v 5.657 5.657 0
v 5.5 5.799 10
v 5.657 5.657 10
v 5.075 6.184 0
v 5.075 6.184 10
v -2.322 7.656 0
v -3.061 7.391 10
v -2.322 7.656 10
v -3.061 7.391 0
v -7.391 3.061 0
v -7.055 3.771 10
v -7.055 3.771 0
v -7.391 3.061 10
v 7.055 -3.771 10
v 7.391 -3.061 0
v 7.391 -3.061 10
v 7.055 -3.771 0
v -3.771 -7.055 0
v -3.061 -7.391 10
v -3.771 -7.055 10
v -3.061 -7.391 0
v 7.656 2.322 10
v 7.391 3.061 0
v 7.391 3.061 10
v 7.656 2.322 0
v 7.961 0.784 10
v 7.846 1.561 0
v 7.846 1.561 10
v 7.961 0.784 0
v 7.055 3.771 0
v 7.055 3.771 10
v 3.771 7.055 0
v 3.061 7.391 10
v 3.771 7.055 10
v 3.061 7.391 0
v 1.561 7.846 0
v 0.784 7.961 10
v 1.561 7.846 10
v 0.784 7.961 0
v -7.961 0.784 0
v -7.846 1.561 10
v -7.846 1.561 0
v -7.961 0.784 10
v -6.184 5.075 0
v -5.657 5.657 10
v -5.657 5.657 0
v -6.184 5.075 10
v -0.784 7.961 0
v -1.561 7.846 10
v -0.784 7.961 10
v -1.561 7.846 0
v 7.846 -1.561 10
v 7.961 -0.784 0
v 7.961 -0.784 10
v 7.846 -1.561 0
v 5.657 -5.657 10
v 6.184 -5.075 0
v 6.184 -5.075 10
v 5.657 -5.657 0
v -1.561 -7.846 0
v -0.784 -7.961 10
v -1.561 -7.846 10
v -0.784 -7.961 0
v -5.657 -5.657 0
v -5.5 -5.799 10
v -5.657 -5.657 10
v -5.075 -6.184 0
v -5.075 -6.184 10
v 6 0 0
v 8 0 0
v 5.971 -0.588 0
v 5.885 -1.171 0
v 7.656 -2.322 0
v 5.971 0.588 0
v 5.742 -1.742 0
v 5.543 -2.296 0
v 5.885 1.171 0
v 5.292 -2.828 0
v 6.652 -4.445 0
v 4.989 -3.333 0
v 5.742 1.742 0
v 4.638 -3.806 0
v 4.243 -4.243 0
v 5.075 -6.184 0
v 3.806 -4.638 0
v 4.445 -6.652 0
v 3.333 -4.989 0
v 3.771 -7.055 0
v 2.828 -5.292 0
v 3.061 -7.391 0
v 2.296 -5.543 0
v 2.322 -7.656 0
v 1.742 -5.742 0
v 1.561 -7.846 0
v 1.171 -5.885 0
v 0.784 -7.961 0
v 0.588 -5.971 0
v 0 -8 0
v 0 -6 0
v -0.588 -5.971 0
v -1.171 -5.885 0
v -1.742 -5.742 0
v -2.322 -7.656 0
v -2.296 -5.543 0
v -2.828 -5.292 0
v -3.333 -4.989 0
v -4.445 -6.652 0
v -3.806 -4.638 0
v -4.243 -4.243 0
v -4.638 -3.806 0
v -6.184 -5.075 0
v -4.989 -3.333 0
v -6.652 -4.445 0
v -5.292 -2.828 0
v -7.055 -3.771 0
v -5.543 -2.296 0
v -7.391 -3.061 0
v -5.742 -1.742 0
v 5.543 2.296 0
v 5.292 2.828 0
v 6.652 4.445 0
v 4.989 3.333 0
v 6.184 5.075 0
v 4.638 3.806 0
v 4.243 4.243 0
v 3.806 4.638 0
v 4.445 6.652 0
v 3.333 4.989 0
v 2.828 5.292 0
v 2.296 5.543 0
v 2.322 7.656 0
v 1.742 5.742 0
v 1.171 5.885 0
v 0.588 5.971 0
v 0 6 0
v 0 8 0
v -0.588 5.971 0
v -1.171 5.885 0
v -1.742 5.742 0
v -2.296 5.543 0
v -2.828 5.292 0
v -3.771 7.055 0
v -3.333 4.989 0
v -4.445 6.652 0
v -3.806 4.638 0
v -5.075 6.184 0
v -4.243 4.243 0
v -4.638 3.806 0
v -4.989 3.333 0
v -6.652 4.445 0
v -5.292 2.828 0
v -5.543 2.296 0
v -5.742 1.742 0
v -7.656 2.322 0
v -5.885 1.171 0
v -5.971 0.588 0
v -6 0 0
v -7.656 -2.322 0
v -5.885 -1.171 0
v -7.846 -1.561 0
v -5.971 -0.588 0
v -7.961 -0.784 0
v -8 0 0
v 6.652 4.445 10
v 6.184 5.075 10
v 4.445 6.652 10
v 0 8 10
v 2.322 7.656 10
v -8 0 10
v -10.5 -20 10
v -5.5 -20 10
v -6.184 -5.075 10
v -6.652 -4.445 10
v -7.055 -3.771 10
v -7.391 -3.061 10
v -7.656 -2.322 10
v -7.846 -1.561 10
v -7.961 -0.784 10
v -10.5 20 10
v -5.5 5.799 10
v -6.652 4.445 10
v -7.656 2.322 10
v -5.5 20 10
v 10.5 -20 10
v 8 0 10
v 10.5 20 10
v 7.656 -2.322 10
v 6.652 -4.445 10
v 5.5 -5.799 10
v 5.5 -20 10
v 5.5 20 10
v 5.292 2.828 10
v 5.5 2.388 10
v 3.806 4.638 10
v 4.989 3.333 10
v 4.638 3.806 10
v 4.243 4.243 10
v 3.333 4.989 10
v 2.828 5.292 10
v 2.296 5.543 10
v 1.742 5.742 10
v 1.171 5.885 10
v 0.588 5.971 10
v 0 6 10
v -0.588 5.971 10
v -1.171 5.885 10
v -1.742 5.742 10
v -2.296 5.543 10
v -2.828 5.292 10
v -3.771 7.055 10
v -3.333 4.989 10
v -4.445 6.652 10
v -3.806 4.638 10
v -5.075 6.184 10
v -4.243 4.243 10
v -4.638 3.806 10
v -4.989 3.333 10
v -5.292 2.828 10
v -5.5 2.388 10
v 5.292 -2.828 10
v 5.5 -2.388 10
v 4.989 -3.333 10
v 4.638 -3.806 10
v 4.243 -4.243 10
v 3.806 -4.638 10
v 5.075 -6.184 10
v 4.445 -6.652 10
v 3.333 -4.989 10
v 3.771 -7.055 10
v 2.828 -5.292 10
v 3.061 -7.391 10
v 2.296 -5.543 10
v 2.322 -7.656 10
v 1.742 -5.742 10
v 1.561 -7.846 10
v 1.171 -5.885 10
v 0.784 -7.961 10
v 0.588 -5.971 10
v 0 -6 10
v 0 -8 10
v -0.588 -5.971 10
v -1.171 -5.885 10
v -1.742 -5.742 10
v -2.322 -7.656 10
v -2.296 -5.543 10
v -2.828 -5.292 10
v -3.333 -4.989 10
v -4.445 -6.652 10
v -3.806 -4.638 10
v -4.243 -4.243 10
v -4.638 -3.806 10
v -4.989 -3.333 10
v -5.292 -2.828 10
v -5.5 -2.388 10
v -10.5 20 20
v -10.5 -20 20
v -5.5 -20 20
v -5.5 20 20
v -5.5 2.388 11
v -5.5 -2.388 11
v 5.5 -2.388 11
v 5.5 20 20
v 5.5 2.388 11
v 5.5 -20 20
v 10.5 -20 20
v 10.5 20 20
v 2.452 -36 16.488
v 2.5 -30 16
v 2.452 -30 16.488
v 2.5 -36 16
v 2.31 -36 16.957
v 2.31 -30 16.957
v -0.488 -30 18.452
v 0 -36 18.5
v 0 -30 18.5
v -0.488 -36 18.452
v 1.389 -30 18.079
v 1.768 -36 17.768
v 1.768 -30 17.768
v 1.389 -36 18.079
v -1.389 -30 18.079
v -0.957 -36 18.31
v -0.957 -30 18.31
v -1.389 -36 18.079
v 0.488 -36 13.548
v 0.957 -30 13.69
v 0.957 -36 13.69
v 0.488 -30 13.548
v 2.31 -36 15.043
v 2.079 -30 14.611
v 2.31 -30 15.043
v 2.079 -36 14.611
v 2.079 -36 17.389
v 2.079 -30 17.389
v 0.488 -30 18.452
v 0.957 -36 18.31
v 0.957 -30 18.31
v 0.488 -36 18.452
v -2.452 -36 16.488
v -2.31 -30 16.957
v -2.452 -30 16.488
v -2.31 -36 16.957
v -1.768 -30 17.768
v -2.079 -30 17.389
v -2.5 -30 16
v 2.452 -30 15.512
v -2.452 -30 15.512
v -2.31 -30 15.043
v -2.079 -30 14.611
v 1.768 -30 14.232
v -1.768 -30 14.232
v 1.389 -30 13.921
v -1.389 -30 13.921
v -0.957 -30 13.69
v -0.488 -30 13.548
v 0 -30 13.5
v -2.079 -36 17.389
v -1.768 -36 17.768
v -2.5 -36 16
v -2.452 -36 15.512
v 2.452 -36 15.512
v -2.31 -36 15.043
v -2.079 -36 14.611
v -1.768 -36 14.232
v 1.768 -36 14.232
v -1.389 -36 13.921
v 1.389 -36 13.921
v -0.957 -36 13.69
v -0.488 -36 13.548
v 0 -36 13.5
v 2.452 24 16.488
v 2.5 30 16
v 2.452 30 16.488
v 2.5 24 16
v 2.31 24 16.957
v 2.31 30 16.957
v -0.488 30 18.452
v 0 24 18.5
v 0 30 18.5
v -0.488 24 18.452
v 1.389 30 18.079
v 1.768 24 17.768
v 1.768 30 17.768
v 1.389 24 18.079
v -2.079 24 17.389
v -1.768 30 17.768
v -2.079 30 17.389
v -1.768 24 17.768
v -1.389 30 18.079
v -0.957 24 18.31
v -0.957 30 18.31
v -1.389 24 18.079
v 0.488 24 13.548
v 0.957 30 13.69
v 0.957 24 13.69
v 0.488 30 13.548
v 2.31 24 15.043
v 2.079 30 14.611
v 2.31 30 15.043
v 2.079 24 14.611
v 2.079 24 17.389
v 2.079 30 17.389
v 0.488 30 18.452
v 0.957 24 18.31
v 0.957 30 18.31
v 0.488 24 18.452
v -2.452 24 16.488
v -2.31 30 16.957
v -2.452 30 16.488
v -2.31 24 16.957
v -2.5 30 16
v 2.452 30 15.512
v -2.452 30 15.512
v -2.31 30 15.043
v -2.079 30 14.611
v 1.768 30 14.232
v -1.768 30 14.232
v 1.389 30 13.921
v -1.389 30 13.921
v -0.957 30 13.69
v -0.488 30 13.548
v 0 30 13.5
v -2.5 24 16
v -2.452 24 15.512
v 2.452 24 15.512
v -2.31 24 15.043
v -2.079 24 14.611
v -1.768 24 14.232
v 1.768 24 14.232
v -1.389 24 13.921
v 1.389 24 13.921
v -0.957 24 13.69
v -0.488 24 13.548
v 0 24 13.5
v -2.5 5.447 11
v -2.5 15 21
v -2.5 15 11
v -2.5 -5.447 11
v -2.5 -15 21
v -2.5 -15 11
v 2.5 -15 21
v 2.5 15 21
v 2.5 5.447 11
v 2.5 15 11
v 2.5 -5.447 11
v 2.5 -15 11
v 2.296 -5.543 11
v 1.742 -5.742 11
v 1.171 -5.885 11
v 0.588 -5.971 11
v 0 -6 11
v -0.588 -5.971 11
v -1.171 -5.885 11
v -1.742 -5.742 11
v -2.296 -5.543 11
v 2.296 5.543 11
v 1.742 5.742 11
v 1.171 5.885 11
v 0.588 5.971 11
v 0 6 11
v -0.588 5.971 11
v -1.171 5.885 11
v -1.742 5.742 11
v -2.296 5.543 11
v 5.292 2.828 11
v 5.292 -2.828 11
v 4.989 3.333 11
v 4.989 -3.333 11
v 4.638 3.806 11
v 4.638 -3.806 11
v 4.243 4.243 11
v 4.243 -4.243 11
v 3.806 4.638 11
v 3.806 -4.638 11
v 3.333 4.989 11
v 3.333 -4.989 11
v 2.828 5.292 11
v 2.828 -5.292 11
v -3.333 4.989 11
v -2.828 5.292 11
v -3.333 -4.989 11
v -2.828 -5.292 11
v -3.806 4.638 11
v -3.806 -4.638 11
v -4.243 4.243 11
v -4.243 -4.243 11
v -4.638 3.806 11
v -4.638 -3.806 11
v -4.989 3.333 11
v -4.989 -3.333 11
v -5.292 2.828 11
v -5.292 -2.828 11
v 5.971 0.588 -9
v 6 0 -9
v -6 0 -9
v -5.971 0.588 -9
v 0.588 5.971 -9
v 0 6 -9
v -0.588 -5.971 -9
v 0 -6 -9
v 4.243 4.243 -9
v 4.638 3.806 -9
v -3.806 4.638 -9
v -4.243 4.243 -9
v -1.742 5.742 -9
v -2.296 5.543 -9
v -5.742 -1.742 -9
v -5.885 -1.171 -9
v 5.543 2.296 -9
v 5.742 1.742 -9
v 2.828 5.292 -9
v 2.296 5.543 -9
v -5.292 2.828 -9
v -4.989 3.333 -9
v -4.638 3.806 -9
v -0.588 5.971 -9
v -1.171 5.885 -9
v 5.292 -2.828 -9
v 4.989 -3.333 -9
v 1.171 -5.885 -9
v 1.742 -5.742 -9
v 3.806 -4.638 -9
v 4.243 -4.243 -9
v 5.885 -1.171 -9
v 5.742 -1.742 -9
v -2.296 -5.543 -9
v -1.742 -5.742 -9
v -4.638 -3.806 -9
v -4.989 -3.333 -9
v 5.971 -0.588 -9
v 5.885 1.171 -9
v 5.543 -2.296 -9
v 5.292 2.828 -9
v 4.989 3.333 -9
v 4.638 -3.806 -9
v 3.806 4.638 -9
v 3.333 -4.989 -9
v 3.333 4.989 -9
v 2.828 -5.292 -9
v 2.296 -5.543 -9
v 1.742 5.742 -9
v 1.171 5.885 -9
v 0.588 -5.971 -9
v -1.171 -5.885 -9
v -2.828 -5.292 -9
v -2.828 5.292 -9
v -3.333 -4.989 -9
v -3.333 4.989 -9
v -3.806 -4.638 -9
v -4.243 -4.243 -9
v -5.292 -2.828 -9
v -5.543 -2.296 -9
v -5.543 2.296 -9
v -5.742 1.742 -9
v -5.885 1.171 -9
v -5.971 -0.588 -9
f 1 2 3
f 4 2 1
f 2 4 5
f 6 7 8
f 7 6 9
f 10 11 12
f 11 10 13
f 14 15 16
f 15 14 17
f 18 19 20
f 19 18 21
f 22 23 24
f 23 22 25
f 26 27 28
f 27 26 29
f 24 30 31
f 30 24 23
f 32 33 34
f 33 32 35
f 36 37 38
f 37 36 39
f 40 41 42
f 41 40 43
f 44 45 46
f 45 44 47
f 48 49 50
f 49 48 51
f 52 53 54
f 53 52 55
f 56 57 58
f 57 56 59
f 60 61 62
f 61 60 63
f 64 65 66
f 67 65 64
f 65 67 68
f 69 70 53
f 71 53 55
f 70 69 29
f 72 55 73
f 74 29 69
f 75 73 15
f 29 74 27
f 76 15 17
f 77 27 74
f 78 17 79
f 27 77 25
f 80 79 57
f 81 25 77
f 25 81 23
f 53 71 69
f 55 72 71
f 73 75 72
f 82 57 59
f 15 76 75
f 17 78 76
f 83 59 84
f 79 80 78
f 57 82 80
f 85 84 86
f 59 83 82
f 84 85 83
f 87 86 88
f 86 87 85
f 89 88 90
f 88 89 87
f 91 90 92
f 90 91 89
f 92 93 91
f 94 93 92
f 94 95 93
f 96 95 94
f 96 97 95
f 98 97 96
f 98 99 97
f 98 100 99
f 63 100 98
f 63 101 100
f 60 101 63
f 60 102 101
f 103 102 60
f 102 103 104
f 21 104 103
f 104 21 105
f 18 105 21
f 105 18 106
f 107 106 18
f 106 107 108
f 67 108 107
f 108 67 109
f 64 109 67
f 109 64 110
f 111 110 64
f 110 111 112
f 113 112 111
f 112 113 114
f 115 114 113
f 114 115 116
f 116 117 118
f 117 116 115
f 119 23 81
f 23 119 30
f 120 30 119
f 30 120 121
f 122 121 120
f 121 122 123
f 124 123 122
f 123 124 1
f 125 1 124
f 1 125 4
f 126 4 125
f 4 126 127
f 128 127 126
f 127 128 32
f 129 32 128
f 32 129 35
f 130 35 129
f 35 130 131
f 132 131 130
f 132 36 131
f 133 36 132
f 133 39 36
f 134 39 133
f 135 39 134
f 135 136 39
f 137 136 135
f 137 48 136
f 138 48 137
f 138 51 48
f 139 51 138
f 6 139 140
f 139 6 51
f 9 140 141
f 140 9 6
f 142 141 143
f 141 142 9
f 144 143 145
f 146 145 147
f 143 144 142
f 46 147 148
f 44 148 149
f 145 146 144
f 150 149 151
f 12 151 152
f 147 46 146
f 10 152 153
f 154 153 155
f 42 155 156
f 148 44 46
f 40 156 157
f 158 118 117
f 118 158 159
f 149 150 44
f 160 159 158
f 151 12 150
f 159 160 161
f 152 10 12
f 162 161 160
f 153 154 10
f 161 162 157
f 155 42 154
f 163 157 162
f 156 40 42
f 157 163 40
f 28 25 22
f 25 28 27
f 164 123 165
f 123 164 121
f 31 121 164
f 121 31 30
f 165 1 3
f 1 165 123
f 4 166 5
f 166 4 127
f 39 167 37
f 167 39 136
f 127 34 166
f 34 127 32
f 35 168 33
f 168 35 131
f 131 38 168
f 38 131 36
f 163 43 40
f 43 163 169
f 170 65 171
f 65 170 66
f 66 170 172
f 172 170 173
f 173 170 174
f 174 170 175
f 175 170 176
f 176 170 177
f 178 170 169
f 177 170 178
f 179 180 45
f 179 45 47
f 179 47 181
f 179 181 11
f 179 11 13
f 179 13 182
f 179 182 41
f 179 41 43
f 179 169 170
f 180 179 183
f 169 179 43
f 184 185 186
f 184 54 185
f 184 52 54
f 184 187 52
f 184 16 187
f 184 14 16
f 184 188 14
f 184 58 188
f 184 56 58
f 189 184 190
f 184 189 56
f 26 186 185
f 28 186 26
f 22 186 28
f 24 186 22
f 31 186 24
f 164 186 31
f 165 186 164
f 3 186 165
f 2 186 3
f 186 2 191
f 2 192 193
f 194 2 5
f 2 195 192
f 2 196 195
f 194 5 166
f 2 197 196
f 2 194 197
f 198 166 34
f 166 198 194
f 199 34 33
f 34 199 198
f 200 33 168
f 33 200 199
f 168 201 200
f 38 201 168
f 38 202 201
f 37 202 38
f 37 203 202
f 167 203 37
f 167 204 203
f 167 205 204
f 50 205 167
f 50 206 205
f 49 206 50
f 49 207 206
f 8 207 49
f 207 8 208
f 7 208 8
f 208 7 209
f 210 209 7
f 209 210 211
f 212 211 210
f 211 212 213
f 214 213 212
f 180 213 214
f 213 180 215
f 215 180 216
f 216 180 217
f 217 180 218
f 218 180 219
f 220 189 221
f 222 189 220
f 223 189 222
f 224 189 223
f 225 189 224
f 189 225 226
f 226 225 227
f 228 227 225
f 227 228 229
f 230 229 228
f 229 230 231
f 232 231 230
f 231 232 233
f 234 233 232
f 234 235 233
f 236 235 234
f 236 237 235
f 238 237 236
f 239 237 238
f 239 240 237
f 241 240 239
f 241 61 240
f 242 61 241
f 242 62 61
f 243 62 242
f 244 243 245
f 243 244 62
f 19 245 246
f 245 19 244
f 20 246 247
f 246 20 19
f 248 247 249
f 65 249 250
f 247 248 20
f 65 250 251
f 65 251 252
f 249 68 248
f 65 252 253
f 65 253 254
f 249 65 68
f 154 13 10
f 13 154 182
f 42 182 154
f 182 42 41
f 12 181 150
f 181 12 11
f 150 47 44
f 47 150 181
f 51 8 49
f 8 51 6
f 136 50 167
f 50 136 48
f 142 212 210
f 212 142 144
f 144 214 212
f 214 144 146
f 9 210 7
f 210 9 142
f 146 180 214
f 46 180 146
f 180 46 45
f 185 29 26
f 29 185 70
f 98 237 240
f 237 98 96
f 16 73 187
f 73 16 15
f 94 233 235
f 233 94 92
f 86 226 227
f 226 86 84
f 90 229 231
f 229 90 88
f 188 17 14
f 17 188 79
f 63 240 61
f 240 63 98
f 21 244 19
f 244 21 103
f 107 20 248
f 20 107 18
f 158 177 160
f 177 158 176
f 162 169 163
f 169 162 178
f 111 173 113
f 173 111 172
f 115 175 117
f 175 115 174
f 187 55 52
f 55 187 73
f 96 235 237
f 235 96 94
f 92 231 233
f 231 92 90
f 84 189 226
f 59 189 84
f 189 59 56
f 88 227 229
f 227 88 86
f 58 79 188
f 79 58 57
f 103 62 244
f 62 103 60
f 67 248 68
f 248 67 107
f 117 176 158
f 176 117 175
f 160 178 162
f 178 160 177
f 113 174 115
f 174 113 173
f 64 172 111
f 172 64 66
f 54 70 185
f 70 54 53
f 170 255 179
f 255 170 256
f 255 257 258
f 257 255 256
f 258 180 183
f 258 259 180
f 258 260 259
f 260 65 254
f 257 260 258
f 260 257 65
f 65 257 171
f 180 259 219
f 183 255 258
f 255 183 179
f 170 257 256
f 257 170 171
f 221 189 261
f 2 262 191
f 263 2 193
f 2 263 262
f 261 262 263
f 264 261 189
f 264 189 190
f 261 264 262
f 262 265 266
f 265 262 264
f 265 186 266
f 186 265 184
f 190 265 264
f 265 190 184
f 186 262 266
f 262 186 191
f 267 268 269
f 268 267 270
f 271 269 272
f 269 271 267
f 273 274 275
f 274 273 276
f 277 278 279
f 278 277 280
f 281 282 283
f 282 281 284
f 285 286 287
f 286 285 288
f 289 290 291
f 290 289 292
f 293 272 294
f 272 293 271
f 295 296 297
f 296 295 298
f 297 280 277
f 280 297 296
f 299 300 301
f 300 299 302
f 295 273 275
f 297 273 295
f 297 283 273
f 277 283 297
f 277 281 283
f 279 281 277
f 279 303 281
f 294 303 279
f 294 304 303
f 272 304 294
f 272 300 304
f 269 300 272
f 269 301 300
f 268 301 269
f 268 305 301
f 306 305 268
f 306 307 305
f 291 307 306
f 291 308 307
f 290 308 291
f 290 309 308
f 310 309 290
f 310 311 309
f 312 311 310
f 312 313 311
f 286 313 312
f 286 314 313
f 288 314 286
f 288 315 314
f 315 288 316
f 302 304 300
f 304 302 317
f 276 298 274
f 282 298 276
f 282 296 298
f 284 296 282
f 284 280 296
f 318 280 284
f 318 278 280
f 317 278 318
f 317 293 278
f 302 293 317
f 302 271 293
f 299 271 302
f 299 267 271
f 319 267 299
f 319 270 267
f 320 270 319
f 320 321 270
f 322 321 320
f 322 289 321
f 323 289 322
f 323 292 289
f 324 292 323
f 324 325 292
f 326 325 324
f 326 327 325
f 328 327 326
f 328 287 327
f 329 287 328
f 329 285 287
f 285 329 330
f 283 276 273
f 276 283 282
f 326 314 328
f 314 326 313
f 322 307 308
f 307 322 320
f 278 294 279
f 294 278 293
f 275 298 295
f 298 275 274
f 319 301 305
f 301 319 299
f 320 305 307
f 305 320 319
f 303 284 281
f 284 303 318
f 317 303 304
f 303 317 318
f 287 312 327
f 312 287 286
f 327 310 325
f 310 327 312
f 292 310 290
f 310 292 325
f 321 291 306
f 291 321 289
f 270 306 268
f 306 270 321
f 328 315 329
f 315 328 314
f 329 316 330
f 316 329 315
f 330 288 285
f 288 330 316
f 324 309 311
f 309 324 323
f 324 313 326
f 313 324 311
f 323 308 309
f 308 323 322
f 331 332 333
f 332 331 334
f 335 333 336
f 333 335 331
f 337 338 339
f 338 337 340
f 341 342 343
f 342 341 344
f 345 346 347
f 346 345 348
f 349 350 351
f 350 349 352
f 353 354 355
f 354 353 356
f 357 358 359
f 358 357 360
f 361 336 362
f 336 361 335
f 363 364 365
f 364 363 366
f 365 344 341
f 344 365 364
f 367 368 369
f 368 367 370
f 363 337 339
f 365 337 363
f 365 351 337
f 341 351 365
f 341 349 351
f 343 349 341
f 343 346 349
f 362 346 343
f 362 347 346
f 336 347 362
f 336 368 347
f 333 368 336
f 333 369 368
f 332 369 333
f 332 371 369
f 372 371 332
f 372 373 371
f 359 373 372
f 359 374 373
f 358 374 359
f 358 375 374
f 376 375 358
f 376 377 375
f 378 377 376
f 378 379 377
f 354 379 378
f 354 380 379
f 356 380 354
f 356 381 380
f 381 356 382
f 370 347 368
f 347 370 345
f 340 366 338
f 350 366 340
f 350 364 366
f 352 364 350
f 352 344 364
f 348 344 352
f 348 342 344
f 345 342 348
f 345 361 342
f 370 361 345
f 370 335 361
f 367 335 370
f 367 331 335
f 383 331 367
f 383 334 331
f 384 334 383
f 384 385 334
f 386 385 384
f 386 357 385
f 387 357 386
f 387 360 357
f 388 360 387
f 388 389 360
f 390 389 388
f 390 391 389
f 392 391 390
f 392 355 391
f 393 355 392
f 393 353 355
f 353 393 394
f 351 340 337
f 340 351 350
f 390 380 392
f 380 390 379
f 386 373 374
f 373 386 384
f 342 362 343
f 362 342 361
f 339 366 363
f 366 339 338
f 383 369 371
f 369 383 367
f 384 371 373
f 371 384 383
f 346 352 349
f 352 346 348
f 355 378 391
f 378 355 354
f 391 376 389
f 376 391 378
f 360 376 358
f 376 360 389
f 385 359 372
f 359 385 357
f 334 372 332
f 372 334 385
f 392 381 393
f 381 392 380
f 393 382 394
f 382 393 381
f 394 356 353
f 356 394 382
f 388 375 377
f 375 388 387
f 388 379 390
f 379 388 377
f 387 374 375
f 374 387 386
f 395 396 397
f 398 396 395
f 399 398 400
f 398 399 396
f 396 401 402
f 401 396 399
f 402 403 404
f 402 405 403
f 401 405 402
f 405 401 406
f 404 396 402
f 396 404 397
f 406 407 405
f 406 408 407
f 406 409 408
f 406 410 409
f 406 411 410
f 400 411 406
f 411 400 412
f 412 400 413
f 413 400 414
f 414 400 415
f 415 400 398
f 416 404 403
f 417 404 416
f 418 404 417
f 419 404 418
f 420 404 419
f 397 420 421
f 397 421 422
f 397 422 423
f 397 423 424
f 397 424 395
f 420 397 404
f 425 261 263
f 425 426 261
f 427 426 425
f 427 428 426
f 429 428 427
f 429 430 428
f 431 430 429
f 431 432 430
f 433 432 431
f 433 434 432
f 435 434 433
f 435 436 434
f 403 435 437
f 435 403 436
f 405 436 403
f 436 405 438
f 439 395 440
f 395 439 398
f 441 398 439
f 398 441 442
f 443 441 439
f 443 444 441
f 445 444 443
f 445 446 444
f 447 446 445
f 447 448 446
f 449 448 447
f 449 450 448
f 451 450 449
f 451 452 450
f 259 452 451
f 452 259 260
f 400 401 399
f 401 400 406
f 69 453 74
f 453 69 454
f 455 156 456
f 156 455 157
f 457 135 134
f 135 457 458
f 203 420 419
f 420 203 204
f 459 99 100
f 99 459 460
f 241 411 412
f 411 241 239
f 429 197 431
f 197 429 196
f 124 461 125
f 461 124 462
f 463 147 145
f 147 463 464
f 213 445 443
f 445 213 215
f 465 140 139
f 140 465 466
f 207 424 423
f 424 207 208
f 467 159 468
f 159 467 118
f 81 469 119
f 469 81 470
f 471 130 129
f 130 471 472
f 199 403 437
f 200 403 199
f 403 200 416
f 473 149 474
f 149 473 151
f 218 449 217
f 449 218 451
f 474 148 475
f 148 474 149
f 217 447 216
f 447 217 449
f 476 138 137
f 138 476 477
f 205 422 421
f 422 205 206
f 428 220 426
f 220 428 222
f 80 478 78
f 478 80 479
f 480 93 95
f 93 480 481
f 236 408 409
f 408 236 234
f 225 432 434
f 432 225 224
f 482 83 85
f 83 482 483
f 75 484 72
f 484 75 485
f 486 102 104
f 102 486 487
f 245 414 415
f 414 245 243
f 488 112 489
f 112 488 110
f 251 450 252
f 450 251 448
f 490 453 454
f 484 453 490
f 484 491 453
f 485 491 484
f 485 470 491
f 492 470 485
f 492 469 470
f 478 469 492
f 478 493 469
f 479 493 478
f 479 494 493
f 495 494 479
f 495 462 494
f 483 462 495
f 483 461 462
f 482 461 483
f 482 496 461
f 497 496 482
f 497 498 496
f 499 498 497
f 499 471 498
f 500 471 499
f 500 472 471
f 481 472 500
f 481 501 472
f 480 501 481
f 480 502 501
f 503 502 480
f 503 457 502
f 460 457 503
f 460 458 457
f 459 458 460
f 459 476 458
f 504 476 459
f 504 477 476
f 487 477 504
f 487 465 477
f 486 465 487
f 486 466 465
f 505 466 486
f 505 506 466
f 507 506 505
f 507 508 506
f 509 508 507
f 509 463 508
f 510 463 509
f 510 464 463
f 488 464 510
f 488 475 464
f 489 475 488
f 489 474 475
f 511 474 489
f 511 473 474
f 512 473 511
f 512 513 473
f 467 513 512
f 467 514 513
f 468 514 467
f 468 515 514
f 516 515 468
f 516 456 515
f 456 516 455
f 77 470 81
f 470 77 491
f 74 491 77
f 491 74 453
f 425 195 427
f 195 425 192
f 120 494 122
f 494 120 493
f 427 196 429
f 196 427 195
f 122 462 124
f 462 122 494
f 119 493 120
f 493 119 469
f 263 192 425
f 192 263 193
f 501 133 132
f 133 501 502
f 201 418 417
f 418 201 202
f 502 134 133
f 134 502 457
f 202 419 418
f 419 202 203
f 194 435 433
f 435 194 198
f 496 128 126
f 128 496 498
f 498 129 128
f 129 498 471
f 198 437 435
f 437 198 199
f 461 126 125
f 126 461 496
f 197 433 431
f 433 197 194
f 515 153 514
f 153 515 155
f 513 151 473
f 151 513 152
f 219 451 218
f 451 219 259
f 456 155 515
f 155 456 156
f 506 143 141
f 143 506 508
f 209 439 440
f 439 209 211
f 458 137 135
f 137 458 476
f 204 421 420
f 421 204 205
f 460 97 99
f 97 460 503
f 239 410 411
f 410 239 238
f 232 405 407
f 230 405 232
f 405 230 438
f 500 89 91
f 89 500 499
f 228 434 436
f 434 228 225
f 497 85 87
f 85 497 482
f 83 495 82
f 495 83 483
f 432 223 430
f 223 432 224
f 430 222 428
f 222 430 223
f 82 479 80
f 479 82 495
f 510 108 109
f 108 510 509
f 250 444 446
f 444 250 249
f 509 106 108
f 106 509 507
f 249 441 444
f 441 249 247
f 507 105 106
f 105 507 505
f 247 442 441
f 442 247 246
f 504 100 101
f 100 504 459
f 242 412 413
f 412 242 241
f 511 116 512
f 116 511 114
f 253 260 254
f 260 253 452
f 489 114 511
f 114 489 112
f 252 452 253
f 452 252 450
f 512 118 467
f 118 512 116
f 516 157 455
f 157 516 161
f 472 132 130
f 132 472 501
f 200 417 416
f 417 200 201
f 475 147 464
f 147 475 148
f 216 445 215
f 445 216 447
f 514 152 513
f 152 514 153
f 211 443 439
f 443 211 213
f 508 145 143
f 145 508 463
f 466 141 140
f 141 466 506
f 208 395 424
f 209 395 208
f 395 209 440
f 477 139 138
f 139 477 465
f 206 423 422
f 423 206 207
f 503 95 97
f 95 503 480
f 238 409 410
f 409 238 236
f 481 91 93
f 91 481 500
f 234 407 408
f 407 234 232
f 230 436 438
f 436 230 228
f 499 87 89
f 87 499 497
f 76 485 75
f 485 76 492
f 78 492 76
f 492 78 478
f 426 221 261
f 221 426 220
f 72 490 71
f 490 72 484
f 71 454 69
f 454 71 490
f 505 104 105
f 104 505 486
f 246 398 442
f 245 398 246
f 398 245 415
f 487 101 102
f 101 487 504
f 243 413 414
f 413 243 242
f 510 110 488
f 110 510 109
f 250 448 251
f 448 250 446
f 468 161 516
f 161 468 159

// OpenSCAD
// Parameters
fork_arm_length = 40;
fork_arm_thickness = 5;
fork_arm_height = 10;
fork_base_radius = 8;
fork_base_height = 10;
hole_radius = 2.5;
hole_offset = 30;

pin_body_width = 30;
pin_body_height = 10;
pin_body_thickness = 5;
pin_shaft_radius = 6;
pin_shaft_height = 20;

// Fork Head Module
module fork_head() {
    // Base cylinder
    translate([0, 0, 0])
        cylinder(h = fork_base_height, r = fork_base_radius, $fn = 64);

    // Left arm
    translate([-fork_arm_thickness/2 - fork_base_radius, -fork_arm_length/2, fork_base_height])
        cube([fork_arm_thickness, fork_arm_length, fork_arm_height]);

    // Right arm
    translate([fork_base_radius - fork_arm_thickness/2, -fork_arm_length/2, fork_base_height])
        cube([fork_arm_thickness, fork_arm_length, fork_arm_height]);

    // Holes in arms
    for (x = [-fork_base_radius, fork_base_radius]) {
        translate([x, hole_offset - fork_arm_length/2, fork_base_height + fork_arm_height/2])
            rotate([90, 0, 0])
                cylinder(h = fork_arm_thickness + 1, r = hole_radius, $fn = 32);
    }
}

// Pin Head Module
module pin_head() {
    // Flat body
    translate([-pin_body_thickness/2, -pin_body_width/2, 0])
        cube([pin_body_thickness, pin_body_width, pin_body_height]);

    // Holes in body
    for (y = [-hole_offset, hole_offset]) {
        translate([0, y, pin_body_height/2])
            rotate([90, 0, 0])
                cylinder(h = pin_body_thickness + 1, r = hole_radius, $fn = 32);
    }

    // Shaft
    translate([0, 0, -pin_shaft_height])
        cylinder(h = pin_shaft_height, r = pin_shaft_radius, $fn = 64);
}

// Assembly
union() {
    fork_head();
    translate([0, 0, fork_base_height + 1])  // Slight offset to avoid z-fighting
        pin_head();
}
